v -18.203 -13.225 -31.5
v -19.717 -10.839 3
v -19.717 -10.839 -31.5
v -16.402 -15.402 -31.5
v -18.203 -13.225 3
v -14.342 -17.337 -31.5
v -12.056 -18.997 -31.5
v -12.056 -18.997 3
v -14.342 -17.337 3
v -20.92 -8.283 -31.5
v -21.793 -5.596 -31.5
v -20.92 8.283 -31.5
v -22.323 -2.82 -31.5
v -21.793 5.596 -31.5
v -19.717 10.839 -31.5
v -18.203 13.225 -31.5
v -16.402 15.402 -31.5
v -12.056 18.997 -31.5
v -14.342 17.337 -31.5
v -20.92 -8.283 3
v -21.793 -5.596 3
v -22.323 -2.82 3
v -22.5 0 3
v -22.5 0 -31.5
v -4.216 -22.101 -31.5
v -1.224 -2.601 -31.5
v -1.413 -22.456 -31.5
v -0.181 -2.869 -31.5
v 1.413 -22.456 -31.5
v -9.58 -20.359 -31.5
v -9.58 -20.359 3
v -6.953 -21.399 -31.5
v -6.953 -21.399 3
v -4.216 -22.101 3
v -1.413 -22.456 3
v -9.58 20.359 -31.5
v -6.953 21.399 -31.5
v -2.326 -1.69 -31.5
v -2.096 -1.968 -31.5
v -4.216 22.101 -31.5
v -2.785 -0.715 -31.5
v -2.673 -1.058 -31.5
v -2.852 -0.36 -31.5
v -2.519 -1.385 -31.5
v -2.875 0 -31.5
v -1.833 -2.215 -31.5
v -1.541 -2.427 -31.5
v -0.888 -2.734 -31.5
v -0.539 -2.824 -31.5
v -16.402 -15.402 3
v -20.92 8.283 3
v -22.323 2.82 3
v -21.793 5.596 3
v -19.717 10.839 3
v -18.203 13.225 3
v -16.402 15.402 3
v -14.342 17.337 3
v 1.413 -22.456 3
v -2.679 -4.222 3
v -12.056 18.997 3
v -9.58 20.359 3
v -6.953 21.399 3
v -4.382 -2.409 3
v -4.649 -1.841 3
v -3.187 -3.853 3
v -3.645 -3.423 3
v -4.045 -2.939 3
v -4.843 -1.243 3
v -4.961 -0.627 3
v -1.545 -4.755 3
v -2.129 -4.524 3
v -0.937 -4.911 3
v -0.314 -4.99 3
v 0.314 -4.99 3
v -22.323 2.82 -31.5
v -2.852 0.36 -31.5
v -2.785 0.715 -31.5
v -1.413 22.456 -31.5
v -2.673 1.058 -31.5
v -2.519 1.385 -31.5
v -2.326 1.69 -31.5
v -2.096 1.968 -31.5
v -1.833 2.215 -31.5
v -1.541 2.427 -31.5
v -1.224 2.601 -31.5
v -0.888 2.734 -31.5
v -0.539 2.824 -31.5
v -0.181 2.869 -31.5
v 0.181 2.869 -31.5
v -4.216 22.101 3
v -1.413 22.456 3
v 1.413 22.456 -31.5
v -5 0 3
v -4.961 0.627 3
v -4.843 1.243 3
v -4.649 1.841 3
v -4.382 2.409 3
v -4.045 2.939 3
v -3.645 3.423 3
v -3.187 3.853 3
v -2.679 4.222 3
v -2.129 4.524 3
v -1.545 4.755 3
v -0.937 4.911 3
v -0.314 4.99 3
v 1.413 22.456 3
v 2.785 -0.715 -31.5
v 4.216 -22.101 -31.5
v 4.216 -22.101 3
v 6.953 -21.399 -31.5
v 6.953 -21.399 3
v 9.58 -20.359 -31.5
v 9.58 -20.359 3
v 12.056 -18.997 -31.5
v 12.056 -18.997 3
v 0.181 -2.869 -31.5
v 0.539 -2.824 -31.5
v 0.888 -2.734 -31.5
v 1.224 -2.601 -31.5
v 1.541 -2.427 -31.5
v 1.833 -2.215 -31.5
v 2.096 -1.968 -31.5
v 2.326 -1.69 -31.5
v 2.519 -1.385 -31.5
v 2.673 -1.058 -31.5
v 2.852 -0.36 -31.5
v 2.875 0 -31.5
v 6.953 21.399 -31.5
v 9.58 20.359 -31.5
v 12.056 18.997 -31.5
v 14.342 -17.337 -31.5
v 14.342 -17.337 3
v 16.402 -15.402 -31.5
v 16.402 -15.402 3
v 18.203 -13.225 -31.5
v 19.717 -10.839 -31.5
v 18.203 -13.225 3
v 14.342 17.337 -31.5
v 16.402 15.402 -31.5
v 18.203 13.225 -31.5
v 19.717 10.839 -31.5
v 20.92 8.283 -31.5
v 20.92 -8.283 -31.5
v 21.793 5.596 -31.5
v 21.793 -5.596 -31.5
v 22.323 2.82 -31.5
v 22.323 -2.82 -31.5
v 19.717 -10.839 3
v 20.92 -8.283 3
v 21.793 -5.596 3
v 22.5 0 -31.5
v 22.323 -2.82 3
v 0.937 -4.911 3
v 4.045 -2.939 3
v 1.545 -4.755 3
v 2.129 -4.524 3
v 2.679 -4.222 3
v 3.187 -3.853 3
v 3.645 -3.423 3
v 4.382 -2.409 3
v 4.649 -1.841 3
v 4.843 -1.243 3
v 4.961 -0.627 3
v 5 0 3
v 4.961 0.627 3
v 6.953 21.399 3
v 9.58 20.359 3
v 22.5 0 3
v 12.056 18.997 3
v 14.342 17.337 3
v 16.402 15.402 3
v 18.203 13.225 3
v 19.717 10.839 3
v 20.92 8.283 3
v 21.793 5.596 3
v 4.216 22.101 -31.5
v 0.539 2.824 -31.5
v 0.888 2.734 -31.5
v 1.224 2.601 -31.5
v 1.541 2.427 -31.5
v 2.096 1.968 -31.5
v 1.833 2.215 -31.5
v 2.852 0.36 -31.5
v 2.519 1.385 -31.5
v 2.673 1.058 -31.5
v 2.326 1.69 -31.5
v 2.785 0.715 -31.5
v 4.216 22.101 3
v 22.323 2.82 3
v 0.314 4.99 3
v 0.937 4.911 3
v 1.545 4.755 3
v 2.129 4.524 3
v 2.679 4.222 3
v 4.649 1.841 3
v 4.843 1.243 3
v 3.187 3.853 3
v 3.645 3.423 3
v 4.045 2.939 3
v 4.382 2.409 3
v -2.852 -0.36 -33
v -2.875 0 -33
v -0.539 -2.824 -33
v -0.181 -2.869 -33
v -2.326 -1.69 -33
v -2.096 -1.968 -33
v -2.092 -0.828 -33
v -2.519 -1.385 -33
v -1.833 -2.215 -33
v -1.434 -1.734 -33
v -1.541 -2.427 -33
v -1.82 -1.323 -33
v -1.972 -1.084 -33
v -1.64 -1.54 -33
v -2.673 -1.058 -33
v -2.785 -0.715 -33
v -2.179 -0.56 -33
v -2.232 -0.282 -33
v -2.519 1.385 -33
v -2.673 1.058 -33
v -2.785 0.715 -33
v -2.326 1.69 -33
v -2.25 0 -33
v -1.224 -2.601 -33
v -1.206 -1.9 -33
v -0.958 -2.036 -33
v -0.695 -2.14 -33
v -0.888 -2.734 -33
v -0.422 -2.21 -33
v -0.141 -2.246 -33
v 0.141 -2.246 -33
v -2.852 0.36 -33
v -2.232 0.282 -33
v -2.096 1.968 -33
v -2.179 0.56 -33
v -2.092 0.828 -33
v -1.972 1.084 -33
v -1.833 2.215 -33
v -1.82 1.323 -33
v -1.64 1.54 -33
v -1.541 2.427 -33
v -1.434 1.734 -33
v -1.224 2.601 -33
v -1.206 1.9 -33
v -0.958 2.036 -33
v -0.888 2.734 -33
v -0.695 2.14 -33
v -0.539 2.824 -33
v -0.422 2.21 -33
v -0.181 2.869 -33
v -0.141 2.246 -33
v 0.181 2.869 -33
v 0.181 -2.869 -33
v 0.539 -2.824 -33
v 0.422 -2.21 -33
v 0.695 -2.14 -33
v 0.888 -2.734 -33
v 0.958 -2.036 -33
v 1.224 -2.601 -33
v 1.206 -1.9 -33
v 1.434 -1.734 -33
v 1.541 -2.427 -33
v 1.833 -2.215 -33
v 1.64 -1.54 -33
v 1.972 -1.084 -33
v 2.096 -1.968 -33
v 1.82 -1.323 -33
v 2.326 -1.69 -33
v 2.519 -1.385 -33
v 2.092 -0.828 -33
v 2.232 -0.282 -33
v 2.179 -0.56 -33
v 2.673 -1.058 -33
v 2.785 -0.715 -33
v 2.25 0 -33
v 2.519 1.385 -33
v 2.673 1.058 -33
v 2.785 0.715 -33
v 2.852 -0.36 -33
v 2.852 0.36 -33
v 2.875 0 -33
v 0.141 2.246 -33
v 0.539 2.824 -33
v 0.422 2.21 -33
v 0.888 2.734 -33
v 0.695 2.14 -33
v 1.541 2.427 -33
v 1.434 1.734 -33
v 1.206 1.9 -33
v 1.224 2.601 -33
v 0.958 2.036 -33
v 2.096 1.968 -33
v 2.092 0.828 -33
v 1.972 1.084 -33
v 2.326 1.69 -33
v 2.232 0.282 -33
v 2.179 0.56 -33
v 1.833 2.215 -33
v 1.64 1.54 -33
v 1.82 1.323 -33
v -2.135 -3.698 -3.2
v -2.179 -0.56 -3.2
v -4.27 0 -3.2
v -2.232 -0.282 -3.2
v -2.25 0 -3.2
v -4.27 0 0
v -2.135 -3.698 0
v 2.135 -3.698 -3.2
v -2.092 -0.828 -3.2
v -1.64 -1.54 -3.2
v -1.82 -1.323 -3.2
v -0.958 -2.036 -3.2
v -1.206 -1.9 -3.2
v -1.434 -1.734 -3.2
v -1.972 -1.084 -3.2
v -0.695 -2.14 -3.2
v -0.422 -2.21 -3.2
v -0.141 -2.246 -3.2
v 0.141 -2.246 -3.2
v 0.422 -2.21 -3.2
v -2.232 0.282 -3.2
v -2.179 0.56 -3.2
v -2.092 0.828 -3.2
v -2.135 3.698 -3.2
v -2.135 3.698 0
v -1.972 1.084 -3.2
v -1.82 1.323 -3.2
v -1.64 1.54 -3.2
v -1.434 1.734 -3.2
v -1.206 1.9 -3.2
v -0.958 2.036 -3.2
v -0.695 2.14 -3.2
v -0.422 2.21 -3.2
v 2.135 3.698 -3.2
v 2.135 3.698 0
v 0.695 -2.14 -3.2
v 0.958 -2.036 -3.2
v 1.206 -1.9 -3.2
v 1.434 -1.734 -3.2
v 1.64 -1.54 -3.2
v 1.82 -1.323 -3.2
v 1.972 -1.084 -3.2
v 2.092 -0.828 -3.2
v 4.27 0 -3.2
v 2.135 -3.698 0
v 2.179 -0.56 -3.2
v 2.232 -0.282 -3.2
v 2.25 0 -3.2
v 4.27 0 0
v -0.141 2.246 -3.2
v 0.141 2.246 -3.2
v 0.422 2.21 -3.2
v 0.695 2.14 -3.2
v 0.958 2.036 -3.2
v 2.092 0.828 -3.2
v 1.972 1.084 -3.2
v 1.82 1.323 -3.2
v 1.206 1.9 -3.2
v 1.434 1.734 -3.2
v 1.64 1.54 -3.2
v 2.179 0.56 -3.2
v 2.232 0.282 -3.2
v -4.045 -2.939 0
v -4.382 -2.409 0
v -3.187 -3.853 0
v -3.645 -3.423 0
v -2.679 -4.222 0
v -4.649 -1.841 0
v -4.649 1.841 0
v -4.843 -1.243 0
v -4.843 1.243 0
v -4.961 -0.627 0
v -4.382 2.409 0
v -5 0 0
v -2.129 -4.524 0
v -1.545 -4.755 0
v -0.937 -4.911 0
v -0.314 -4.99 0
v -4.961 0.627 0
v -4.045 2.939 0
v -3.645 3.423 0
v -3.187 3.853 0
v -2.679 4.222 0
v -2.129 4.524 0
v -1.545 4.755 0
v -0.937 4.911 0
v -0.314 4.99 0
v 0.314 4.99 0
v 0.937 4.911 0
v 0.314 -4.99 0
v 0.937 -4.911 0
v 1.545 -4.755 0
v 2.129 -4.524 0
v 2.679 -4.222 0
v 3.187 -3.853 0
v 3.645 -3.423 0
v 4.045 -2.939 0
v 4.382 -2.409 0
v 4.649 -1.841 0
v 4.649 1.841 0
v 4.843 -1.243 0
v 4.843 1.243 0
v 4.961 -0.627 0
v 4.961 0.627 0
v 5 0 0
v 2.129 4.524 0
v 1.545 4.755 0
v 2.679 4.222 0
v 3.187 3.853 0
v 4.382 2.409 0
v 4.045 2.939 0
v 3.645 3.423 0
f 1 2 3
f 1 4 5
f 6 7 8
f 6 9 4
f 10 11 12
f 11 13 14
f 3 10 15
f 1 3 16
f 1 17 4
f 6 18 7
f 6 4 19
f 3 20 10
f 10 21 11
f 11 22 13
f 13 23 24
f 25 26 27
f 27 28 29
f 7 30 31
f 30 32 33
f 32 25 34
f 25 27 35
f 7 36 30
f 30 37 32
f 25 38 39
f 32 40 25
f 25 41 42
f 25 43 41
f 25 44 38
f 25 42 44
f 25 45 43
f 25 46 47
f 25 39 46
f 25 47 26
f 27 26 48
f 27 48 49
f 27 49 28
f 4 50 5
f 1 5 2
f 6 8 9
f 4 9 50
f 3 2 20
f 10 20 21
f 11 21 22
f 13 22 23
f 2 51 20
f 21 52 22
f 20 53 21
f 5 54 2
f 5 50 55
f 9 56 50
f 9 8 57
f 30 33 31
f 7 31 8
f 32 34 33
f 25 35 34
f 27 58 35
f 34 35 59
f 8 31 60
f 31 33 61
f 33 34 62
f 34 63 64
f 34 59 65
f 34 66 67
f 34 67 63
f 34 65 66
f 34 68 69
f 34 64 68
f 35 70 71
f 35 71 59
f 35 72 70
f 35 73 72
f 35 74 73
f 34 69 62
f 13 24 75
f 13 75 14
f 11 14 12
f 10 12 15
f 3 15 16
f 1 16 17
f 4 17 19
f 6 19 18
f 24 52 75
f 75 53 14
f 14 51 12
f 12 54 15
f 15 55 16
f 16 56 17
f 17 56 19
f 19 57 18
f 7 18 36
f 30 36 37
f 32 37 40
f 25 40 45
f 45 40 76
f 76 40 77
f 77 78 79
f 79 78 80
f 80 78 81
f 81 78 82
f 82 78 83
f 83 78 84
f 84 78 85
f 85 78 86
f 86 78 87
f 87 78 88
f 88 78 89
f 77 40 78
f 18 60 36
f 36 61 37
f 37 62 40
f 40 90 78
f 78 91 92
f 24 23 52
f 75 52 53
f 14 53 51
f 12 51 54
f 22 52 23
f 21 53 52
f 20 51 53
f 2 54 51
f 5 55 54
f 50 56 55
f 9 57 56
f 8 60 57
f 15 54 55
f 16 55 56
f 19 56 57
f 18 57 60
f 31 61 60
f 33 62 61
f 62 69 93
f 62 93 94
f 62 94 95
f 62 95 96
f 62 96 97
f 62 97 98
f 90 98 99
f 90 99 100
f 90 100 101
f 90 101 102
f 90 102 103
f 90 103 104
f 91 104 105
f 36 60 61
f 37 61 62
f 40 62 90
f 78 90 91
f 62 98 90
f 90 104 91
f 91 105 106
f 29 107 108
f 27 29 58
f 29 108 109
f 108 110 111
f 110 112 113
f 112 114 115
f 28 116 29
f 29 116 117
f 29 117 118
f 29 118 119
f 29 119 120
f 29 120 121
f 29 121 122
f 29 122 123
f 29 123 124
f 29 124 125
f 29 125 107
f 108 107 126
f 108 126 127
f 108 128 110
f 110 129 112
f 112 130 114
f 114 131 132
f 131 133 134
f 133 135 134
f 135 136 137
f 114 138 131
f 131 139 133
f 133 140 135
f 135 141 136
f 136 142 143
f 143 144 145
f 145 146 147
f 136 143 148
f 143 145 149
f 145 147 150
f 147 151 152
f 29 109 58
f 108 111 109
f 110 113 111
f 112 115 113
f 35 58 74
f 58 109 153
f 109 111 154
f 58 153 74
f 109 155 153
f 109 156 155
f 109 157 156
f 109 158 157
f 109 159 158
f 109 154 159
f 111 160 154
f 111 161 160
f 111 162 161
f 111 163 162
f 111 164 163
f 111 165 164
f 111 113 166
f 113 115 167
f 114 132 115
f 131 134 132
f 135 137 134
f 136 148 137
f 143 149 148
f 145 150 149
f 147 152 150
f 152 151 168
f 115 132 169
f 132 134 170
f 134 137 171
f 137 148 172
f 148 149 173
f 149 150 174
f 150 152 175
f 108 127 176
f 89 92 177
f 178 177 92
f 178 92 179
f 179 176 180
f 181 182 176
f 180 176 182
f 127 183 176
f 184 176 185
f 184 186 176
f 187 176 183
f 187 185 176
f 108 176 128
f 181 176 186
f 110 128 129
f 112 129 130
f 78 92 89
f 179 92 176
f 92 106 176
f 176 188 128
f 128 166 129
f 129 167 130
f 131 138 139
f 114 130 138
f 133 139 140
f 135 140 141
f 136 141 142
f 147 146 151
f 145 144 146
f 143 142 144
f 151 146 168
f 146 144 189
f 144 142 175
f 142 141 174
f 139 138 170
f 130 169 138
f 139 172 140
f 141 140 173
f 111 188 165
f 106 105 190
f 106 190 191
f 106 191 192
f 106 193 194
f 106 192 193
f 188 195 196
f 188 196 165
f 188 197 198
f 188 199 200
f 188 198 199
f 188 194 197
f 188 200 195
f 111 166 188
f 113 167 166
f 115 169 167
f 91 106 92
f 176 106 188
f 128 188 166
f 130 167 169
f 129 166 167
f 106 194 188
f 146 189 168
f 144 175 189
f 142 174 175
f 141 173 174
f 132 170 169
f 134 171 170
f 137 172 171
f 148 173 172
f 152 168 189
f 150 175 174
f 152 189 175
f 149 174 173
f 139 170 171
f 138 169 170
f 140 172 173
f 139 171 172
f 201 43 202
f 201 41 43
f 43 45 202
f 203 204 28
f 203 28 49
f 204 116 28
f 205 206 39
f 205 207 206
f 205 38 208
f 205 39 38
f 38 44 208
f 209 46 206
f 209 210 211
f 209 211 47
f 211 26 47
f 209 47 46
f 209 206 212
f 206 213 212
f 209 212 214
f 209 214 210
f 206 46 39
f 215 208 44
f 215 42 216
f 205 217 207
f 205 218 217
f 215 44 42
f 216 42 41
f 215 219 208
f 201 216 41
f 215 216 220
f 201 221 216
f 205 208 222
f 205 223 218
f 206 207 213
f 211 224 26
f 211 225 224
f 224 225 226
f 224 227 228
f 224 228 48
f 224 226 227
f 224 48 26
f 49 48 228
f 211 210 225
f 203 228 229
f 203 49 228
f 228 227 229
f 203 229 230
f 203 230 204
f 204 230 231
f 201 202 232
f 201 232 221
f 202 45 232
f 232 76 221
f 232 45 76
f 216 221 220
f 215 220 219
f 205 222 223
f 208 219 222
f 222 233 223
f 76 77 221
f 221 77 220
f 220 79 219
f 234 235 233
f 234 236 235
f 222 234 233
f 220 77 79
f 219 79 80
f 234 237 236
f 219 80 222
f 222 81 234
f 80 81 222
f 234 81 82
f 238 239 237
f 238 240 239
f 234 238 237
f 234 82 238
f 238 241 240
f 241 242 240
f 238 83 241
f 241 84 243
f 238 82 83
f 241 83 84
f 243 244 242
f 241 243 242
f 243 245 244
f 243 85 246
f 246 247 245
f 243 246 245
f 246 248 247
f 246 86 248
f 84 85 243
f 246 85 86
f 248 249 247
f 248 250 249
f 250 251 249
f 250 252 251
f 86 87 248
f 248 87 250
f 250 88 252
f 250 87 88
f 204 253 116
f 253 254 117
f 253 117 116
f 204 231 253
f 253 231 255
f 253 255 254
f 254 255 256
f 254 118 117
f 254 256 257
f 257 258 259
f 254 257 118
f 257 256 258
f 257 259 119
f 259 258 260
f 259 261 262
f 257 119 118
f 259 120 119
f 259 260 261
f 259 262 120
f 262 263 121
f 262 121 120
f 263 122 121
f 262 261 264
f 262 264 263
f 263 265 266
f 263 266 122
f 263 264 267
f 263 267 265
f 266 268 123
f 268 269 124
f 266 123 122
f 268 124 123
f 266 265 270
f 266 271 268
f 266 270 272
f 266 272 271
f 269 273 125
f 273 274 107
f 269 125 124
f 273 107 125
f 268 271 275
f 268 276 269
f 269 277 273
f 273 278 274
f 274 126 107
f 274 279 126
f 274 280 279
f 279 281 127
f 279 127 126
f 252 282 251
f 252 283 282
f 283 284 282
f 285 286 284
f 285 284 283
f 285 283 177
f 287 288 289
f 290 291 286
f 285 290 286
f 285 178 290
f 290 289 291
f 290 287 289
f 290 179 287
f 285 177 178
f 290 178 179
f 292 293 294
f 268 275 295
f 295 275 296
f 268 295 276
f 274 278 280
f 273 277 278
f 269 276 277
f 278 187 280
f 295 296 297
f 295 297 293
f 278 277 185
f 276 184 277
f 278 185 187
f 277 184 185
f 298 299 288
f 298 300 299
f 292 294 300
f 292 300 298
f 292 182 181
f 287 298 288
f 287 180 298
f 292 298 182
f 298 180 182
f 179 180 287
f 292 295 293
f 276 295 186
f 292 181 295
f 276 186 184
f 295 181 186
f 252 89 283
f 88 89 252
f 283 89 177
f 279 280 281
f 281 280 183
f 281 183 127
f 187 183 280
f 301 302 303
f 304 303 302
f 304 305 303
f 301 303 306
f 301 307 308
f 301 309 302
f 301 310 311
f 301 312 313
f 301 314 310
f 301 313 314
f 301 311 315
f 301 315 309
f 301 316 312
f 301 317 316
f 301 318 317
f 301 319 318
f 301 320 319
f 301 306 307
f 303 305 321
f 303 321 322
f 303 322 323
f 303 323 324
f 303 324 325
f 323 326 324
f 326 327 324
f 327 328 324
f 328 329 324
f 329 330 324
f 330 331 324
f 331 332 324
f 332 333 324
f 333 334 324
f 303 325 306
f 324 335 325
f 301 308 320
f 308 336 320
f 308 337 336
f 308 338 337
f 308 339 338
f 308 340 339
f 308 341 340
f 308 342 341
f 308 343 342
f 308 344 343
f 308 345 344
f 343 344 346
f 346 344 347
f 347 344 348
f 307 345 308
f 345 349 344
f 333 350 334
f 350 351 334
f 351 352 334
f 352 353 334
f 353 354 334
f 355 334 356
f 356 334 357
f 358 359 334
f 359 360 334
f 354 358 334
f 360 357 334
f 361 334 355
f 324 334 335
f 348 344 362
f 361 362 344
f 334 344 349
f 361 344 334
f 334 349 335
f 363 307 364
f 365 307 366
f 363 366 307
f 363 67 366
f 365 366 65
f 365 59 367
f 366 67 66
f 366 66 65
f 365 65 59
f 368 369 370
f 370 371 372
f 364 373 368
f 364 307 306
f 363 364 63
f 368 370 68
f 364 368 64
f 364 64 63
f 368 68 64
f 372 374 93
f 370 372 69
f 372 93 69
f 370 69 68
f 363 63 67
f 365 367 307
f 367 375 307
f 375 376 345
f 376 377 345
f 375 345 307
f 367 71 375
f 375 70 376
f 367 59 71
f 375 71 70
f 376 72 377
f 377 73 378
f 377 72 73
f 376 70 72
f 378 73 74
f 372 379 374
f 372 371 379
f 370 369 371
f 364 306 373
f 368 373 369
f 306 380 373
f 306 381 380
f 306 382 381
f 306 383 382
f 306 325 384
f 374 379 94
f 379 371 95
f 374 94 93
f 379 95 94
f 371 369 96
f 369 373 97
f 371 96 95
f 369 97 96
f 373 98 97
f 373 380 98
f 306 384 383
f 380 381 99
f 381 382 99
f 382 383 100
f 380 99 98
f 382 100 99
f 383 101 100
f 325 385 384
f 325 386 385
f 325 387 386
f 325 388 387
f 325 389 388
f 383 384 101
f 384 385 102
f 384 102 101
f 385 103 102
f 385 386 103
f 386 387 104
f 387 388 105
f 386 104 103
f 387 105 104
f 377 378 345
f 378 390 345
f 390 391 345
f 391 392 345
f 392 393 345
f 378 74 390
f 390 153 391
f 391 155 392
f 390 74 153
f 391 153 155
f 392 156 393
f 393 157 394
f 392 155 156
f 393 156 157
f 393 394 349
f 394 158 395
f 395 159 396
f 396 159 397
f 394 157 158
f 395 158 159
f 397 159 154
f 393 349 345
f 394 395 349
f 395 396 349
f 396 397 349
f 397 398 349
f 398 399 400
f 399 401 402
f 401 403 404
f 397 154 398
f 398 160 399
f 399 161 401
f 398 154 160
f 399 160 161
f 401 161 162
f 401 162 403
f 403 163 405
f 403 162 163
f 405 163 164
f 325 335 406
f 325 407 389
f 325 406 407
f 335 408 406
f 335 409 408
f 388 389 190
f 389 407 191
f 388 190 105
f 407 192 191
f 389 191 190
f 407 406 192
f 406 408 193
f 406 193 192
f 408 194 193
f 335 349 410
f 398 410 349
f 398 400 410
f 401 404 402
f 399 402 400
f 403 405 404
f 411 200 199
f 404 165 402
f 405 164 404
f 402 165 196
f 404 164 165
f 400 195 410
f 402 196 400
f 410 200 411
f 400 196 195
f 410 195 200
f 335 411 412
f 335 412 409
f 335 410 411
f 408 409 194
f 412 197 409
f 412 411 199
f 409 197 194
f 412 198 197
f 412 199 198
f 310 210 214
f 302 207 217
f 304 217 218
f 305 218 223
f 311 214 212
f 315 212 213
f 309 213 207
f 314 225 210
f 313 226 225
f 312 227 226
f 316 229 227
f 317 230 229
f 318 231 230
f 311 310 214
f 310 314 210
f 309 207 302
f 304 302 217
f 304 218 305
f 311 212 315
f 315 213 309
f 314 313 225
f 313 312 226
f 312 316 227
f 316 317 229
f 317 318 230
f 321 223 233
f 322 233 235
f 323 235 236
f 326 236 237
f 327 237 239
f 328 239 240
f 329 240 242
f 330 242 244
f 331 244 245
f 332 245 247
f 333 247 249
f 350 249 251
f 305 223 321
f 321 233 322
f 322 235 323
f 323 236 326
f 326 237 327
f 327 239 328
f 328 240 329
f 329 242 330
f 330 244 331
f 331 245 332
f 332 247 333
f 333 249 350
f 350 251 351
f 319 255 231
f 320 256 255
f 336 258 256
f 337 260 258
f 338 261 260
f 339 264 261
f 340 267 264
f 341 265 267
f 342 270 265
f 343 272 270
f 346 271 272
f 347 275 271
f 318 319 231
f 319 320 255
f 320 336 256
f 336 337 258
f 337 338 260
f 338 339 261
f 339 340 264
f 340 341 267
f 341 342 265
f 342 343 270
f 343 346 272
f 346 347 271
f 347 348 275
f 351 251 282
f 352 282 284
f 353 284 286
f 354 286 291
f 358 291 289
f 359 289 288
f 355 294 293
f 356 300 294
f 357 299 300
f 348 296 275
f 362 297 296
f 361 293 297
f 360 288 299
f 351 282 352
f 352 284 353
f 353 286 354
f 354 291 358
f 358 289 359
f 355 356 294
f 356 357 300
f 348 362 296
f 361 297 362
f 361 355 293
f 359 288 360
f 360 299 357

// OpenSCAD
$fn = 50;

difference() {
	union() {
		translate(v = [0, 0, -31.5]) {
			cylinder(h = 34.5, r = 22.5);
		}
		#translate(v = [0, 0, -33.0]) {
			cylinder(h = 33, r = 2.875);
		}
	}
	union() {
		translate(v = [0, 0, 0]) {
			rotate(a = [0, 0, 0]) {
				difference() {
					union() {
						translate(v = [0, 0, -3.2]) {
							linear_extrude(height = 3.2) {
								polygon(points = [[4.2698, 0.0], [2.1349000000000005, 3.697755269078796], [-2.134899999999999, 3.6977552690787965], [-4.2698, 5.228996902999369e-16], [-2.134900000000002, -3.6977552690787956], [2.1348999999999974, -3.697755269078798]]);
							}
						}
					}
					union();
				}
			}
		}
		#cylinder(h = 3, r = 5.0);
		#translate(v = [0, 0, -100.0]) {
			cylinder(h = 200, r = 2.25);
		}
	}
}
